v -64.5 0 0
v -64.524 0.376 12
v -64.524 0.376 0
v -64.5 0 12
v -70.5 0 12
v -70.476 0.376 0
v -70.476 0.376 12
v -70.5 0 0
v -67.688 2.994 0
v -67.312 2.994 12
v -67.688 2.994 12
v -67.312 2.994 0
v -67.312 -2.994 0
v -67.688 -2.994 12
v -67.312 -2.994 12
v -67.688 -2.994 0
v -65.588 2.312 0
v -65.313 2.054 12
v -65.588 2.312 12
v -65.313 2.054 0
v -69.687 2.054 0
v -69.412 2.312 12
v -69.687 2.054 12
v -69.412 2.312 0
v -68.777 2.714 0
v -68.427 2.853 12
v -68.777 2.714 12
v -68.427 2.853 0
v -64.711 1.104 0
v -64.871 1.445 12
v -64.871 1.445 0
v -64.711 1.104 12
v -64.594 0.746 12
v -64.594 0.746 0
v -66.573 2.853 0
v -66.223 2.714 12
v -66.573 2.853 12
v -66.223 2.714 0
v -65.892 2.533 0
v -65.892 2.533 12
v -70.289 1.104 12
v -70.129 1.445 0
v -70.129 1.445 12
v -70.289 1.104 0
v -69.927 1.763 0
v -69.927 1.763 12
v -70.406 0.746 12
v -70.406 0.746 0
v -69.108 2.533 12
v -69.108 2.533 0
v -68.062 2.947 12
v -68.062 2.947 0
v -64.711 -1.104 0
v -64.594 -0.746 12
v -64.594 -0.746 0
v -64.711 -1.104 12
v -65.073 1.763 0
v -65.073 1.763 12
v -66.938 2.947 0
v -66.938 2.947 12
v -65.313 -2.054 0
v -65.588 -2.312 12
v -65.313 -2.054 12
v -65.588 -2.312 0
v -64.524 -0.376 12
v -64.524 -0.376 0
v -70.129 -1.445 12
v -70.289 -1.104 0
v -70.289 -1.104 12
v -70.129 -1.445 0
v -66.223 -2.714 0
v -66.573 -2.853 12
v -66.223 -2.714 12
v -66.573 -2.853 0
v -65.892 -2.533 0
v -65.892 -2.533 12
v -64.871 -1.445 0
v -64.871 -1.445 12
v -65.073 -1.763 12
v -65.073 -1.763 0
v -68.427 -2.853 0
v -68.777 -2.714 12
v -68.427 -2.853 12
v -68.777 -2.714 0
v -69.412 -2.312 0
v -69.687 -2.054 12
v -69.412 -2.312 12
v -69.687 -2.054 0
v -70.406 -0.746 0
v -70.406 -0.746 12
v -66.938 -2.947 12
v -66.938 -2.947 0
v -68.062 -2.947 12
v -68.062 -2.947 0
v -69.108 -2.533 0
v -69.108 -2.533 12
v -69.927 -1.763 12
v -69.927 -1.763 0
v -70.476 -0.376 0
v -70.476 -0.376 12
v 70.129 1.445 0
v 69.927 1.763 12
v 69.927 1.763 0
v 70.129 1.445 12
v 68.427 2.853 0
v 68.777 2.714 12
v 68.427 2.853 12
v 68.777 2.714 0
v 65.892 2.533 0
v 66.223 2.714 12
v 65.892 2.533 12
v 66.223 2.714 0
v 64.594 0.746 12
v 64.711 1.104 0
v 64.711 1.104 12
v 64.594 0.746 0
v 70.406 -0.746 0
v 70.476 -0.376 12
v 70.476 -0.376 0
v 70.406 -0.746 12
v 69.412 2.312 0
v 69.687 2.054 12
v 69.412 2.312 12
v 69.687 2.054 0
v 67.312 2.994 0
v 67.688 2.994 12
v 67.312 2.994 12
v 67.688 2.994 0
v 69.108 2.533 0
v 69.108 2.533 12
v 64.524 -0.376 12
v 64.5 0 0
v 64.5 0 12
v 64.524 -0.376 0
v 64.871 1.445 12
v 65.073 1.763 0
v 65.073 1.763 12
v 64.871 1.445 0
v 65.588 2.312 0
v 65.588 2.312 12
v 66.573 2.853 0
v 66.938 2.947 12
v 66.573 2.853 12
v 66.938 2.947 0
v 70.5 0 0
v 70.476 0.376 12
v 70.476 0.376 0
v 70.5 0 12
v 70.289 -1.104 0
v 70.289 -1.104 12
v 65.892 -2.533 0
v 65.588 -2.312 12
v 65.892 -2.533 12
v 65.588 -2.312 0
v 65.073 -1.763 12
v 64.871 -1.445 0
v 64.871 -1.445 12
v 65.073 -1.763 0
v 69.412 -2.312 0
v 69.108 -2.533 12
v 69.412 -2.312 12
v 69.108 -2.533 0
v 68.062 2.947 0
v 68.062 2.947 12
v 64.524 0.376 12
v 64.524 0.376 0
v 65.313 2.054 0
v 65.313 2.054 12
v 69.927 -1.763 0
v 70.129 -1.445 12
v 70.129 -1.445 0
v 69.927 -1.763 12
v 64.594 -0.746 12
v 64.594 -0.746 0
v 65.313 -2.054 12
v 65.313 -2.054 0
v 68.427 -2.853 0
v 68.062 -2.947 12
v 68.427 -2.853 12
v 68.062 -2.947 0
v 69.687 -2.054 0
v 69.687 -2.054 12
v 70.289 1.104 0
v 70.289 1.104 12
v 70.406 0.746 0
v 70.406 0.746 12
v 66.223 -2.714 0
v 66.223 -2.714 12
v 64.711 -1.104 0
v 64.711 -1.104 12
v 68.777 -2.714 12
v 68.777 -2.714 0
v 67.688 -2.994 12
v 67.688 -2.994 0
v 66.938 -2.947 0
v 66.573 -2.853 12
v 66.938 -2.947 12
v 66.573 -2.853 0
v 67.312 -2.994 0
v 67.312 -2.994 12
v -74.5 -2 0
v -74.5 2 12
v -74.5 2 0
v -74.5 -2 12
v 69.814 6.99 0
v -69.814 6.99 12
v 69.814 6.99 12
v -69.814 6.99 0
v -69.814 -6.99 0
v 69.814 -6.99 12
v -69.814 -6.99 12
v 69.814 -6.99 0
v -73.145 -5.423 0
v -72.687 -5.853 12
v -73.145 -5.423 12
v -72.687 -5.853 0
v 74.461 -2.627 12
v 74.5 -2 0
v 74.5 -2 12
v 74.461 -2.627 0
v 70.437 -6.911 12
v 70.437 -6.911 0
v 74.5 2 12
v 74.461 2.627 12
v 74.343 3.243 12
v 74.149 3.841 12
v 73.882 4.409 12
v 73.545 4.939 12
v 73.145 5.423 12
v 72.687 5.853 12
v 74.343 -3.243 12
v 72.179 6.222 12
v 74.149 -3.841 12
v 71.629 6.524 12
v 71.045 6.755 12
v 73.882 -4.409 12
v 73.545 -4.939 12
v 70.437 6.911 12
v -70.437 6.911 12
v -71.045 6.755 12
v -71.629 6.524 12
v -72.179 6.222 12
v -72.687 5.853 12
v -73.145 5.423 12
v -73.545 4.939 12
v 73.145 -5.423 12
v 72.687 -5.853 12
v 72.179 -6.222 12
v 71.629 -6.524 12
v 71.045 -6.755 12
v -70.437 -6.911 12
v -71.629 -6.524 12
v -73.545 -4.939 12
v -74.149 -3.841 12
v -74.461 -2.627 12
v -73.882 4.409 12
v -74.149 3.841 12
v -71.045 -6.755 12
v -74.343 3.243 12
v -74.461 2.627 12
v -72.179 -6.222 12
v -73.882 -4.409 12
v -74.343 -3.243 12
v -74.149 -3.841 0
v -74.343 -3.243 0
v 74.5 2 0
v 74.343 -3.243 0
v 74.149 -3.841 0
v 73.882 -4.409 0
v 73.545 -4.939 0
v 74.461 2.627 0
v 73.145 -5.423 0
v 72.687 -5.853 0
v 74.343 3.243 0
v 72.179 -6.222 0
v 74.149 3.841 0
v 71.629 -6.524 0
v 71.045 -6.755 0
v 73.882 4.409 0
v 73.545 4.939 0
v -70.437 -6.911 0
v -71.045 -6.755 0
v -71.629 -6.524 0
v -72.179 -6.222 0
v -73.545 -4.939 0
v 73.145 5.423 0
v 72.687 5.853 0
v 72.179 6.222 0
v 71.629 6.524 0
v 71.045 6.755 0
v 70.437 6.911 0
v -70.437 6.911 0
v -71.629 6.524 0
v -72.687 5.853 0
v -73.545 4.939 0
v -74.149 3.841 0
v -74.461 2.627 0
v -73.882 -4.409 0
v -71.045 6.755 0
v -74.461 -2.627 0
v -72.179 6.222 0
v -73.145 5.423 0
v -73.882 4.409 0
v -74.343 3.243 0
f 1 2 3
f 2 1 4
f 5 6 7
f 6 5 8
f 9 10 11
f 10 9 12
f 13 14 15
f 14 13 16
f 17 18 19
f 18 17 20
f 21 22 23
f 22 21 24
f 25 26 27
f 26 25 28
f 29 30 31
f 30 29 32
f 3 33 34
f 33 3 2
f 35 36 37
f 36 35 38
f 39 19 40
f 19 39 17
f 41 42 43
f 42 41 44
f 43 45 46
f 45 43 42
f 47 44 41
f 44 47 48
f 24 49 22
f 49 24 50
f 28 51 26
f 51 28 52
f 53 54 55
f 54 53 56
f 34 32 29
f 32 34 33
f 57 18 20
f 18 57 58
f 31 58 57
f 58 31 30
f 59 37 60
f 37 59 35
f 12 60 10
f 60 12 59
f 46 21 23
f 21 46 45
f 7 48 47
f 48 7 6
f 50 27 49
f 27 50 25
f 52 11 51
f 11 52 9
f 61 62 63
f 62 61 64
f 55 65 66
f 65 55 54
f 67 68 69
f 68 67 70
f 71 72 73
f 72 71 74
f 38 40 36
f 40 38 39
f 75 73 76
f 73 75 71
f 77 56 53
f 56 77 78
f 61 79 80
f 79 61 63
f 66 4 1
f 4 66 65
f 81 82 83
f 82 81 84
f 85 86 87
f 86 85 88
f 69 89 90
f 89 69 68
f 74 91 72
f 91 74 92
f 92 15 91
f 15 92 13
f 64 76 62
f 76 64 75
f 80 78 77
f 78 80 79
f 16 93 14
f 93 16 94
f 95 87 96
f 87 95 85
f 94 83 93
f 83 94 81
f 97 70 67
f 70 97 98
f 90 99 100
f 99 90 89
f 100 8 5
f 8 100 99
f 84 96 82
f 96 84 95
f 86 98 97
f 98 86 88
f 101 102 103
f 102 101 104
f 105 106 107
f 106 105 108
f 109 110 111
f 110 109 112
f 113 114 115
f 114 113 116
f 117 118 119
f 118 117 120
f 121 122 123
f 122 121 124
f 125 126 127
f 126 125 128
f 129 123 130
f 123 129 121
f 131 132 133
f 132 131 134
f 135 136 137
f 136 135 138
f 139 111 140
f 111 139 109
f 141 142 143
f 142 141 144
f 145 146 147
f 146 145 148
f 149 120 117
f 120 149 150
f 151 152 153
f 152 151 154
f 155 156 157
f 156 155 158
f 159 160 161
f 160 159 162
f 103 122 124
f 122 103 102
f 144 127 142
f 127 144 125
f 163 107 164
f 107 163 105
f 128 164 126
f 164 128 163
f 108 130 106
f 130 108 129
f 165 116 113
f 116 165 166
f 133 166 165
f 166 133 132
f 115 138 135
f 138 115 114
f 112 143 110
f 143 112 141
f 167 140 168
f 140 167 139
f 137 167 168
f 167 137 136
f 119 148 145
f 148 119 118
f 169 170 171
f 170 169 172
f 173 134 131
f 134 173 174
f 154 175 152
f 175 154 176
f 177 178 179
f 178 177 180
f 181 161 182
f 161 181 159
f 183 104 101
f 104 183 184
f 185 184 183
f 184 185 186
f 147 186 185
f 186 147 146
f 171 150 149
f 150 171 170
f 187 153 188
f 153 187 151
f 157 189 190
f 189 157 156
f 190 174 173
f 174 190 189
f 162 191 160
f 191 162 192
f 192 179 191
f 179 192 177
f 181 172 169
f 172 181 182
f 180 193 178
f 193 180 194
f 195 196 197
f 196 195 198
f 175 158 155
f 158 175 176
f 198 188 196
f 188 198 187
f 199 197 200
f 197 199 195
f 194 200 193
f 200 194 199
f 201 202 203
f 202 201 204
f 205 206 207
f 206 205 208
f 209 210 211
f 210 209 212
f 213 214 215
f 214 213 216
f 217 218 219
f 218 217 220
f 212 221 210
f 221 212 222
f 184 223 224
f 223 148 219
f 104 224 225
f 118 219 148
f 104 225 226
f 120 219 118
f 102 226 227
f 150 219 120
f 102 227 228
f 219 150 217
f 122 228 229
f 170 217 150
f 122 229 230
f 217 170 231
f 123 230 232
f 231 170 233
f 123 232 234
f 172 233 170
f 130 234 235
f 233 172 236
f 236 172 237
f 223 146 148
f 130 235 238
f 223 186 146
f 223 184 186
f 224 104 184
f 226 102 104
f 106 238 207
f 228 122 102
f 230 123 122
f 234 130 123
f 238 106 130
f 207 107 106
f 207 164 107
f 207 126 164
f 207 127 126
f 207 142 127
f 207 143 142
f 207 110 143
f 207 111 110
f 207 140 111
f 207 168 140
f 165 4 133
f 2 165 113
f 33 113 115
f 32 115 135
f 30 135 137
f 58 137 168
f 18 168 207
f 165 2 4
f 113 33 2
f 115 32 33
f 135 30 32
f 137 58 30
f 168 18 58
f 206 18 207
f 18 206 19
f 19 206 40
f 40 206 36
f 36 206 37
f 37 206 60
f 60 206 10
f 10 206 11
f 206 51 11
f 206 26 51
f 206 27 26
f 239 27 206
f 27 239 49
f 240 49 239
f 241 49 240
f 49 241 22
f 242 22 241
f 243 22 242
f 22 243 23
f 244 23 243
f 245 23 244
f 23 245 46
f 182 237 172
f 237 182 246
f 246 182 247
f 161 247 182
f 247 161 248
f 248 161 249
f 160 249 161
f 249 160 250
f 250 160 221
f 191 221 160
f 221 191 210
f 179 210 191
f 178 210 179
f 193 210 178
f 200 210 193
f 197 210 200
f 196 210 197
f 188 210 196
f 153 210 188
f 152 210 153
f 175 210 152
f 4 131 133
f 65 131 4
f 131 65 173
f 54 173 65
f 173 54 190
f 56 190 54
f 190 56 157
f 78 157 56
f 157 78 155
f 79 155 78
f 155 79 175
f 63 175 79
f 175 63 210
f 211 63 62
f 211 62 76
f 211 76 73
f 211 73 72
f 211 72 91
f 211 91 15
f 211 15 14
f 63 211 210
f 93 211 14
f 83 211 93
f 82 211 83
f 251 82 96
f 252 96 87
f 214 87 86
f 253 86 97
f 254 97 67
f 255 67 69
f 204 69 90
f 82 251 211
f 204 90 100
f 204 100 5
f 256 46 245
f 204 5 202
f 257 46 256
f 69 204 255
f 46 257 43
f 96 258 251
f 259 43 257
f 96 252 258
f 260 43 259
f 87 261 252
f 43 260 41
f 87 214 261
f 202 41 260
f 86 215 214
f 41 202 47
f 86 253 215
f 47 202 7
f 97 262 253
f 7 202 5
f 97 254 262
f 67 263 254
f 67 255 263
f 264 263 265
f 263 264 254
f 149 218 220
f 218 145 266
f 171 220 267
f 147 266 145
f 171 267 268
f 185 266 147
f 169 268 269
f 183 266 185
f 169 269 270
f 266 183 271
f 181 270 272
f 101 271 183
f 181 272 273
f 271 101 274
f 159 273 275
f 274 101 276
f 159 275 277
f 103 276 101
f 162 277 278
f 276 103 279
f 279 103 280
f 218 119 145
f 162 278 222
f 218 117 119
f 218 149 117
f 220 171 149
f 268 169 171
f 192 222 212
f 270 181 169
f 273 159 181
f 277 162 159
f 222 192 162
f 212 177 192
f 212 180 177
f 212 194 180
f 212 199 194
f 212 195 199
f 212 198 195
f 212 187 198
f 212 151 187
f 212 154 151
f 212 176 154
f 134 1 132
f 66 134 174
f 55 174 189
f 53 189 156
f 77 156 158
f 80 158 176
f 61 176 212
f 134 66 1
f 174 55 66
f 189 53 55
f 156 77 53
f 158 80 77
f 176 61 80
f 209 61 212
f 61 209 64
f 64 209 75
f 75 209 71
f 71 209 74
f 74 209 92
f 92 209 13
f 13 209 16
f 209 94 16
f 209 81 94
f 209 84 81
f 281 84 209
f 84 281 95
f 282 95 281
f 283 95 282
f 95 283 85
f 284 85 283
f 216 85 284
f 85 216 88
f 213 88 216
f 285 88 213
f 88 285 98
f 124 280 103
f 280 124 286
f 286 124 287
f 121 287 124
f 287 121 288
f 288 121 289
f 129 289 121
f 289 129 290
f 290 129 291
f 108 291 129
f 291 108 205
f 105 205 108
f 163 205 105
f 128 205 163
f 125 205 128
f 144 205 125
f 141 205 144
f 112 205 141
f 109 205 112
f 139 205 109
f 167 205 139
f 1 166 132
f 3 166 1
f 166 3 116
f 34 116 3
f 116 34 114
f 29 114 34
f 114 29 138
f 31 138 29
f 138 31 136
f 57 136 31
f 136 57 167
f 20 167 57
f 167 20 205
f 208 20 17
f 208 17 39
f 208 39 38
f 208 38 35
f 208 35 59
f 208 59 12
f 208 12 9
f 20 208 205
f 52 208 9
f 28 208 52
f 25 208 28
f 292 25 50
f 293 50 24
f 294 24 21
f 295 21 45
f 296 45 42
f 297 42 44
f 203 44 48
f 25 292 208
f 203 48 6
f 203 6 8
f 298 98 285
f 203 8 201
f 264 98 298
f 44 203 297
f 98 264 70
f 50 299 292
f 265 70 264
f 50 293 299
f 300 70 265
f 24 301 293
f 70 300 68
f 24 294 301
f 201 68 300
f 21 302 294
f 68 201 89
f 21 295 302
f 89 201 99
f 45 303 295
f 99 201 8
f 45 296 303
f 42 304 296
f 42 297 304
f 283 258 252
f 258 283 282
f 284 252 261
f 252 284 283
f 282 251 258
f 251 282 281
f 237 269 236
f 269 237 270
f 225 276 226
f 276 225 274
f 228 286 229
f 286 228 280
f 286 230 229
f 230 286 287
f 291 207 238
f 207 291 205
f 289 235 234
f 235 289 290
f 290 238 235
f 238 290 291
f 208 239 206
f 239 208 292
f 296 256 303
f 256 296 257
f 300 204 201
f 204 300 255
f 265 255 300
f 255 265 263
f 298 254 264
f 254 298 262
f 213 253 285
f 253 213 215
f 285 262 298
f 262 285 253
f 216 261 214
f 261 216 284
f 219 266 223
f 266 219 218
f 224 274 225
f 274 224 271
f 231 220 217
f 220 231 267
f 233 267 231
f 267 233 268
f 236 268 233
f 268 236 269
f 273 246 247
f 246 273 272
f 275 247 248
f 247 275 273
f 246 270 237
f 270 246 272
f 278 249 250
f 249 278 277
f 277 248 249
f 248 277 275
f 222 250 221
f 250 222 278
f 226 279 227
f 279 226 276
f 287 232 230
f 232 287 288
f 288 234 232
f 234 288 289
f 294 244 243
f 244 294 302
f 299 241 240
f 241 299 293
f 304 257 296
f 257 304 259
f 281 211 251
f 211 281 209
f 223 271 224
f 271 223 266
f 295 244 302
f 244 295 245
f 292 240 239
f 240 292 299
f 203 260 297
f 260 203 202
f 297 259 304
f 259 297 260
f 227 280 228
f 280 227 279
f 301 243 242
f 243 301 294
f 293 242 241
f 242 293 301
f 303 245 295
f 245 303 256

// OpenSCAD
$fn = 50;


difference() {
	union() {
		hull() {
			translate(v = [-69.5000000000, 2.0000000000, 0]) {
				cylinder(h = 12, r = 5);
			}
			translate(v = [69.5000000000, 2.0000000000, 0]) {
				cylinder(h = 12, r = 5);
			}
			translate(v = [-69.5000000000, -2.0000000000, 0]) {
				cylinder(h = 12, r = 5);
			}
			translate(v = [69.5000000000, -2.0000000000, 0]) {
				cylinder(h = 12, r = 5);
			}
		}
	}
	union() {
		translate(v = [-67.5000000000, 0.0000000000, -100.0000000000]) {
			cylinder(h = 200, r = 3.0000000000);
		}
		translate(v = [-67.5000000000, 0.0000000000, -100.0000000000]) {
			cylinder(h = 200, r = 3.0000000000);
		}
		translate(v = [67.5000000000, 0.0000000000, -100.0000000000]) {
			cylinder(h = 200, r = 3.0000000000);
		}
		translate(v = [67.5000000000, 0.0000000000, -100.0000000000]) {
			cylinder(h = 200, r = 3.0000000000);
		}
	}
}
